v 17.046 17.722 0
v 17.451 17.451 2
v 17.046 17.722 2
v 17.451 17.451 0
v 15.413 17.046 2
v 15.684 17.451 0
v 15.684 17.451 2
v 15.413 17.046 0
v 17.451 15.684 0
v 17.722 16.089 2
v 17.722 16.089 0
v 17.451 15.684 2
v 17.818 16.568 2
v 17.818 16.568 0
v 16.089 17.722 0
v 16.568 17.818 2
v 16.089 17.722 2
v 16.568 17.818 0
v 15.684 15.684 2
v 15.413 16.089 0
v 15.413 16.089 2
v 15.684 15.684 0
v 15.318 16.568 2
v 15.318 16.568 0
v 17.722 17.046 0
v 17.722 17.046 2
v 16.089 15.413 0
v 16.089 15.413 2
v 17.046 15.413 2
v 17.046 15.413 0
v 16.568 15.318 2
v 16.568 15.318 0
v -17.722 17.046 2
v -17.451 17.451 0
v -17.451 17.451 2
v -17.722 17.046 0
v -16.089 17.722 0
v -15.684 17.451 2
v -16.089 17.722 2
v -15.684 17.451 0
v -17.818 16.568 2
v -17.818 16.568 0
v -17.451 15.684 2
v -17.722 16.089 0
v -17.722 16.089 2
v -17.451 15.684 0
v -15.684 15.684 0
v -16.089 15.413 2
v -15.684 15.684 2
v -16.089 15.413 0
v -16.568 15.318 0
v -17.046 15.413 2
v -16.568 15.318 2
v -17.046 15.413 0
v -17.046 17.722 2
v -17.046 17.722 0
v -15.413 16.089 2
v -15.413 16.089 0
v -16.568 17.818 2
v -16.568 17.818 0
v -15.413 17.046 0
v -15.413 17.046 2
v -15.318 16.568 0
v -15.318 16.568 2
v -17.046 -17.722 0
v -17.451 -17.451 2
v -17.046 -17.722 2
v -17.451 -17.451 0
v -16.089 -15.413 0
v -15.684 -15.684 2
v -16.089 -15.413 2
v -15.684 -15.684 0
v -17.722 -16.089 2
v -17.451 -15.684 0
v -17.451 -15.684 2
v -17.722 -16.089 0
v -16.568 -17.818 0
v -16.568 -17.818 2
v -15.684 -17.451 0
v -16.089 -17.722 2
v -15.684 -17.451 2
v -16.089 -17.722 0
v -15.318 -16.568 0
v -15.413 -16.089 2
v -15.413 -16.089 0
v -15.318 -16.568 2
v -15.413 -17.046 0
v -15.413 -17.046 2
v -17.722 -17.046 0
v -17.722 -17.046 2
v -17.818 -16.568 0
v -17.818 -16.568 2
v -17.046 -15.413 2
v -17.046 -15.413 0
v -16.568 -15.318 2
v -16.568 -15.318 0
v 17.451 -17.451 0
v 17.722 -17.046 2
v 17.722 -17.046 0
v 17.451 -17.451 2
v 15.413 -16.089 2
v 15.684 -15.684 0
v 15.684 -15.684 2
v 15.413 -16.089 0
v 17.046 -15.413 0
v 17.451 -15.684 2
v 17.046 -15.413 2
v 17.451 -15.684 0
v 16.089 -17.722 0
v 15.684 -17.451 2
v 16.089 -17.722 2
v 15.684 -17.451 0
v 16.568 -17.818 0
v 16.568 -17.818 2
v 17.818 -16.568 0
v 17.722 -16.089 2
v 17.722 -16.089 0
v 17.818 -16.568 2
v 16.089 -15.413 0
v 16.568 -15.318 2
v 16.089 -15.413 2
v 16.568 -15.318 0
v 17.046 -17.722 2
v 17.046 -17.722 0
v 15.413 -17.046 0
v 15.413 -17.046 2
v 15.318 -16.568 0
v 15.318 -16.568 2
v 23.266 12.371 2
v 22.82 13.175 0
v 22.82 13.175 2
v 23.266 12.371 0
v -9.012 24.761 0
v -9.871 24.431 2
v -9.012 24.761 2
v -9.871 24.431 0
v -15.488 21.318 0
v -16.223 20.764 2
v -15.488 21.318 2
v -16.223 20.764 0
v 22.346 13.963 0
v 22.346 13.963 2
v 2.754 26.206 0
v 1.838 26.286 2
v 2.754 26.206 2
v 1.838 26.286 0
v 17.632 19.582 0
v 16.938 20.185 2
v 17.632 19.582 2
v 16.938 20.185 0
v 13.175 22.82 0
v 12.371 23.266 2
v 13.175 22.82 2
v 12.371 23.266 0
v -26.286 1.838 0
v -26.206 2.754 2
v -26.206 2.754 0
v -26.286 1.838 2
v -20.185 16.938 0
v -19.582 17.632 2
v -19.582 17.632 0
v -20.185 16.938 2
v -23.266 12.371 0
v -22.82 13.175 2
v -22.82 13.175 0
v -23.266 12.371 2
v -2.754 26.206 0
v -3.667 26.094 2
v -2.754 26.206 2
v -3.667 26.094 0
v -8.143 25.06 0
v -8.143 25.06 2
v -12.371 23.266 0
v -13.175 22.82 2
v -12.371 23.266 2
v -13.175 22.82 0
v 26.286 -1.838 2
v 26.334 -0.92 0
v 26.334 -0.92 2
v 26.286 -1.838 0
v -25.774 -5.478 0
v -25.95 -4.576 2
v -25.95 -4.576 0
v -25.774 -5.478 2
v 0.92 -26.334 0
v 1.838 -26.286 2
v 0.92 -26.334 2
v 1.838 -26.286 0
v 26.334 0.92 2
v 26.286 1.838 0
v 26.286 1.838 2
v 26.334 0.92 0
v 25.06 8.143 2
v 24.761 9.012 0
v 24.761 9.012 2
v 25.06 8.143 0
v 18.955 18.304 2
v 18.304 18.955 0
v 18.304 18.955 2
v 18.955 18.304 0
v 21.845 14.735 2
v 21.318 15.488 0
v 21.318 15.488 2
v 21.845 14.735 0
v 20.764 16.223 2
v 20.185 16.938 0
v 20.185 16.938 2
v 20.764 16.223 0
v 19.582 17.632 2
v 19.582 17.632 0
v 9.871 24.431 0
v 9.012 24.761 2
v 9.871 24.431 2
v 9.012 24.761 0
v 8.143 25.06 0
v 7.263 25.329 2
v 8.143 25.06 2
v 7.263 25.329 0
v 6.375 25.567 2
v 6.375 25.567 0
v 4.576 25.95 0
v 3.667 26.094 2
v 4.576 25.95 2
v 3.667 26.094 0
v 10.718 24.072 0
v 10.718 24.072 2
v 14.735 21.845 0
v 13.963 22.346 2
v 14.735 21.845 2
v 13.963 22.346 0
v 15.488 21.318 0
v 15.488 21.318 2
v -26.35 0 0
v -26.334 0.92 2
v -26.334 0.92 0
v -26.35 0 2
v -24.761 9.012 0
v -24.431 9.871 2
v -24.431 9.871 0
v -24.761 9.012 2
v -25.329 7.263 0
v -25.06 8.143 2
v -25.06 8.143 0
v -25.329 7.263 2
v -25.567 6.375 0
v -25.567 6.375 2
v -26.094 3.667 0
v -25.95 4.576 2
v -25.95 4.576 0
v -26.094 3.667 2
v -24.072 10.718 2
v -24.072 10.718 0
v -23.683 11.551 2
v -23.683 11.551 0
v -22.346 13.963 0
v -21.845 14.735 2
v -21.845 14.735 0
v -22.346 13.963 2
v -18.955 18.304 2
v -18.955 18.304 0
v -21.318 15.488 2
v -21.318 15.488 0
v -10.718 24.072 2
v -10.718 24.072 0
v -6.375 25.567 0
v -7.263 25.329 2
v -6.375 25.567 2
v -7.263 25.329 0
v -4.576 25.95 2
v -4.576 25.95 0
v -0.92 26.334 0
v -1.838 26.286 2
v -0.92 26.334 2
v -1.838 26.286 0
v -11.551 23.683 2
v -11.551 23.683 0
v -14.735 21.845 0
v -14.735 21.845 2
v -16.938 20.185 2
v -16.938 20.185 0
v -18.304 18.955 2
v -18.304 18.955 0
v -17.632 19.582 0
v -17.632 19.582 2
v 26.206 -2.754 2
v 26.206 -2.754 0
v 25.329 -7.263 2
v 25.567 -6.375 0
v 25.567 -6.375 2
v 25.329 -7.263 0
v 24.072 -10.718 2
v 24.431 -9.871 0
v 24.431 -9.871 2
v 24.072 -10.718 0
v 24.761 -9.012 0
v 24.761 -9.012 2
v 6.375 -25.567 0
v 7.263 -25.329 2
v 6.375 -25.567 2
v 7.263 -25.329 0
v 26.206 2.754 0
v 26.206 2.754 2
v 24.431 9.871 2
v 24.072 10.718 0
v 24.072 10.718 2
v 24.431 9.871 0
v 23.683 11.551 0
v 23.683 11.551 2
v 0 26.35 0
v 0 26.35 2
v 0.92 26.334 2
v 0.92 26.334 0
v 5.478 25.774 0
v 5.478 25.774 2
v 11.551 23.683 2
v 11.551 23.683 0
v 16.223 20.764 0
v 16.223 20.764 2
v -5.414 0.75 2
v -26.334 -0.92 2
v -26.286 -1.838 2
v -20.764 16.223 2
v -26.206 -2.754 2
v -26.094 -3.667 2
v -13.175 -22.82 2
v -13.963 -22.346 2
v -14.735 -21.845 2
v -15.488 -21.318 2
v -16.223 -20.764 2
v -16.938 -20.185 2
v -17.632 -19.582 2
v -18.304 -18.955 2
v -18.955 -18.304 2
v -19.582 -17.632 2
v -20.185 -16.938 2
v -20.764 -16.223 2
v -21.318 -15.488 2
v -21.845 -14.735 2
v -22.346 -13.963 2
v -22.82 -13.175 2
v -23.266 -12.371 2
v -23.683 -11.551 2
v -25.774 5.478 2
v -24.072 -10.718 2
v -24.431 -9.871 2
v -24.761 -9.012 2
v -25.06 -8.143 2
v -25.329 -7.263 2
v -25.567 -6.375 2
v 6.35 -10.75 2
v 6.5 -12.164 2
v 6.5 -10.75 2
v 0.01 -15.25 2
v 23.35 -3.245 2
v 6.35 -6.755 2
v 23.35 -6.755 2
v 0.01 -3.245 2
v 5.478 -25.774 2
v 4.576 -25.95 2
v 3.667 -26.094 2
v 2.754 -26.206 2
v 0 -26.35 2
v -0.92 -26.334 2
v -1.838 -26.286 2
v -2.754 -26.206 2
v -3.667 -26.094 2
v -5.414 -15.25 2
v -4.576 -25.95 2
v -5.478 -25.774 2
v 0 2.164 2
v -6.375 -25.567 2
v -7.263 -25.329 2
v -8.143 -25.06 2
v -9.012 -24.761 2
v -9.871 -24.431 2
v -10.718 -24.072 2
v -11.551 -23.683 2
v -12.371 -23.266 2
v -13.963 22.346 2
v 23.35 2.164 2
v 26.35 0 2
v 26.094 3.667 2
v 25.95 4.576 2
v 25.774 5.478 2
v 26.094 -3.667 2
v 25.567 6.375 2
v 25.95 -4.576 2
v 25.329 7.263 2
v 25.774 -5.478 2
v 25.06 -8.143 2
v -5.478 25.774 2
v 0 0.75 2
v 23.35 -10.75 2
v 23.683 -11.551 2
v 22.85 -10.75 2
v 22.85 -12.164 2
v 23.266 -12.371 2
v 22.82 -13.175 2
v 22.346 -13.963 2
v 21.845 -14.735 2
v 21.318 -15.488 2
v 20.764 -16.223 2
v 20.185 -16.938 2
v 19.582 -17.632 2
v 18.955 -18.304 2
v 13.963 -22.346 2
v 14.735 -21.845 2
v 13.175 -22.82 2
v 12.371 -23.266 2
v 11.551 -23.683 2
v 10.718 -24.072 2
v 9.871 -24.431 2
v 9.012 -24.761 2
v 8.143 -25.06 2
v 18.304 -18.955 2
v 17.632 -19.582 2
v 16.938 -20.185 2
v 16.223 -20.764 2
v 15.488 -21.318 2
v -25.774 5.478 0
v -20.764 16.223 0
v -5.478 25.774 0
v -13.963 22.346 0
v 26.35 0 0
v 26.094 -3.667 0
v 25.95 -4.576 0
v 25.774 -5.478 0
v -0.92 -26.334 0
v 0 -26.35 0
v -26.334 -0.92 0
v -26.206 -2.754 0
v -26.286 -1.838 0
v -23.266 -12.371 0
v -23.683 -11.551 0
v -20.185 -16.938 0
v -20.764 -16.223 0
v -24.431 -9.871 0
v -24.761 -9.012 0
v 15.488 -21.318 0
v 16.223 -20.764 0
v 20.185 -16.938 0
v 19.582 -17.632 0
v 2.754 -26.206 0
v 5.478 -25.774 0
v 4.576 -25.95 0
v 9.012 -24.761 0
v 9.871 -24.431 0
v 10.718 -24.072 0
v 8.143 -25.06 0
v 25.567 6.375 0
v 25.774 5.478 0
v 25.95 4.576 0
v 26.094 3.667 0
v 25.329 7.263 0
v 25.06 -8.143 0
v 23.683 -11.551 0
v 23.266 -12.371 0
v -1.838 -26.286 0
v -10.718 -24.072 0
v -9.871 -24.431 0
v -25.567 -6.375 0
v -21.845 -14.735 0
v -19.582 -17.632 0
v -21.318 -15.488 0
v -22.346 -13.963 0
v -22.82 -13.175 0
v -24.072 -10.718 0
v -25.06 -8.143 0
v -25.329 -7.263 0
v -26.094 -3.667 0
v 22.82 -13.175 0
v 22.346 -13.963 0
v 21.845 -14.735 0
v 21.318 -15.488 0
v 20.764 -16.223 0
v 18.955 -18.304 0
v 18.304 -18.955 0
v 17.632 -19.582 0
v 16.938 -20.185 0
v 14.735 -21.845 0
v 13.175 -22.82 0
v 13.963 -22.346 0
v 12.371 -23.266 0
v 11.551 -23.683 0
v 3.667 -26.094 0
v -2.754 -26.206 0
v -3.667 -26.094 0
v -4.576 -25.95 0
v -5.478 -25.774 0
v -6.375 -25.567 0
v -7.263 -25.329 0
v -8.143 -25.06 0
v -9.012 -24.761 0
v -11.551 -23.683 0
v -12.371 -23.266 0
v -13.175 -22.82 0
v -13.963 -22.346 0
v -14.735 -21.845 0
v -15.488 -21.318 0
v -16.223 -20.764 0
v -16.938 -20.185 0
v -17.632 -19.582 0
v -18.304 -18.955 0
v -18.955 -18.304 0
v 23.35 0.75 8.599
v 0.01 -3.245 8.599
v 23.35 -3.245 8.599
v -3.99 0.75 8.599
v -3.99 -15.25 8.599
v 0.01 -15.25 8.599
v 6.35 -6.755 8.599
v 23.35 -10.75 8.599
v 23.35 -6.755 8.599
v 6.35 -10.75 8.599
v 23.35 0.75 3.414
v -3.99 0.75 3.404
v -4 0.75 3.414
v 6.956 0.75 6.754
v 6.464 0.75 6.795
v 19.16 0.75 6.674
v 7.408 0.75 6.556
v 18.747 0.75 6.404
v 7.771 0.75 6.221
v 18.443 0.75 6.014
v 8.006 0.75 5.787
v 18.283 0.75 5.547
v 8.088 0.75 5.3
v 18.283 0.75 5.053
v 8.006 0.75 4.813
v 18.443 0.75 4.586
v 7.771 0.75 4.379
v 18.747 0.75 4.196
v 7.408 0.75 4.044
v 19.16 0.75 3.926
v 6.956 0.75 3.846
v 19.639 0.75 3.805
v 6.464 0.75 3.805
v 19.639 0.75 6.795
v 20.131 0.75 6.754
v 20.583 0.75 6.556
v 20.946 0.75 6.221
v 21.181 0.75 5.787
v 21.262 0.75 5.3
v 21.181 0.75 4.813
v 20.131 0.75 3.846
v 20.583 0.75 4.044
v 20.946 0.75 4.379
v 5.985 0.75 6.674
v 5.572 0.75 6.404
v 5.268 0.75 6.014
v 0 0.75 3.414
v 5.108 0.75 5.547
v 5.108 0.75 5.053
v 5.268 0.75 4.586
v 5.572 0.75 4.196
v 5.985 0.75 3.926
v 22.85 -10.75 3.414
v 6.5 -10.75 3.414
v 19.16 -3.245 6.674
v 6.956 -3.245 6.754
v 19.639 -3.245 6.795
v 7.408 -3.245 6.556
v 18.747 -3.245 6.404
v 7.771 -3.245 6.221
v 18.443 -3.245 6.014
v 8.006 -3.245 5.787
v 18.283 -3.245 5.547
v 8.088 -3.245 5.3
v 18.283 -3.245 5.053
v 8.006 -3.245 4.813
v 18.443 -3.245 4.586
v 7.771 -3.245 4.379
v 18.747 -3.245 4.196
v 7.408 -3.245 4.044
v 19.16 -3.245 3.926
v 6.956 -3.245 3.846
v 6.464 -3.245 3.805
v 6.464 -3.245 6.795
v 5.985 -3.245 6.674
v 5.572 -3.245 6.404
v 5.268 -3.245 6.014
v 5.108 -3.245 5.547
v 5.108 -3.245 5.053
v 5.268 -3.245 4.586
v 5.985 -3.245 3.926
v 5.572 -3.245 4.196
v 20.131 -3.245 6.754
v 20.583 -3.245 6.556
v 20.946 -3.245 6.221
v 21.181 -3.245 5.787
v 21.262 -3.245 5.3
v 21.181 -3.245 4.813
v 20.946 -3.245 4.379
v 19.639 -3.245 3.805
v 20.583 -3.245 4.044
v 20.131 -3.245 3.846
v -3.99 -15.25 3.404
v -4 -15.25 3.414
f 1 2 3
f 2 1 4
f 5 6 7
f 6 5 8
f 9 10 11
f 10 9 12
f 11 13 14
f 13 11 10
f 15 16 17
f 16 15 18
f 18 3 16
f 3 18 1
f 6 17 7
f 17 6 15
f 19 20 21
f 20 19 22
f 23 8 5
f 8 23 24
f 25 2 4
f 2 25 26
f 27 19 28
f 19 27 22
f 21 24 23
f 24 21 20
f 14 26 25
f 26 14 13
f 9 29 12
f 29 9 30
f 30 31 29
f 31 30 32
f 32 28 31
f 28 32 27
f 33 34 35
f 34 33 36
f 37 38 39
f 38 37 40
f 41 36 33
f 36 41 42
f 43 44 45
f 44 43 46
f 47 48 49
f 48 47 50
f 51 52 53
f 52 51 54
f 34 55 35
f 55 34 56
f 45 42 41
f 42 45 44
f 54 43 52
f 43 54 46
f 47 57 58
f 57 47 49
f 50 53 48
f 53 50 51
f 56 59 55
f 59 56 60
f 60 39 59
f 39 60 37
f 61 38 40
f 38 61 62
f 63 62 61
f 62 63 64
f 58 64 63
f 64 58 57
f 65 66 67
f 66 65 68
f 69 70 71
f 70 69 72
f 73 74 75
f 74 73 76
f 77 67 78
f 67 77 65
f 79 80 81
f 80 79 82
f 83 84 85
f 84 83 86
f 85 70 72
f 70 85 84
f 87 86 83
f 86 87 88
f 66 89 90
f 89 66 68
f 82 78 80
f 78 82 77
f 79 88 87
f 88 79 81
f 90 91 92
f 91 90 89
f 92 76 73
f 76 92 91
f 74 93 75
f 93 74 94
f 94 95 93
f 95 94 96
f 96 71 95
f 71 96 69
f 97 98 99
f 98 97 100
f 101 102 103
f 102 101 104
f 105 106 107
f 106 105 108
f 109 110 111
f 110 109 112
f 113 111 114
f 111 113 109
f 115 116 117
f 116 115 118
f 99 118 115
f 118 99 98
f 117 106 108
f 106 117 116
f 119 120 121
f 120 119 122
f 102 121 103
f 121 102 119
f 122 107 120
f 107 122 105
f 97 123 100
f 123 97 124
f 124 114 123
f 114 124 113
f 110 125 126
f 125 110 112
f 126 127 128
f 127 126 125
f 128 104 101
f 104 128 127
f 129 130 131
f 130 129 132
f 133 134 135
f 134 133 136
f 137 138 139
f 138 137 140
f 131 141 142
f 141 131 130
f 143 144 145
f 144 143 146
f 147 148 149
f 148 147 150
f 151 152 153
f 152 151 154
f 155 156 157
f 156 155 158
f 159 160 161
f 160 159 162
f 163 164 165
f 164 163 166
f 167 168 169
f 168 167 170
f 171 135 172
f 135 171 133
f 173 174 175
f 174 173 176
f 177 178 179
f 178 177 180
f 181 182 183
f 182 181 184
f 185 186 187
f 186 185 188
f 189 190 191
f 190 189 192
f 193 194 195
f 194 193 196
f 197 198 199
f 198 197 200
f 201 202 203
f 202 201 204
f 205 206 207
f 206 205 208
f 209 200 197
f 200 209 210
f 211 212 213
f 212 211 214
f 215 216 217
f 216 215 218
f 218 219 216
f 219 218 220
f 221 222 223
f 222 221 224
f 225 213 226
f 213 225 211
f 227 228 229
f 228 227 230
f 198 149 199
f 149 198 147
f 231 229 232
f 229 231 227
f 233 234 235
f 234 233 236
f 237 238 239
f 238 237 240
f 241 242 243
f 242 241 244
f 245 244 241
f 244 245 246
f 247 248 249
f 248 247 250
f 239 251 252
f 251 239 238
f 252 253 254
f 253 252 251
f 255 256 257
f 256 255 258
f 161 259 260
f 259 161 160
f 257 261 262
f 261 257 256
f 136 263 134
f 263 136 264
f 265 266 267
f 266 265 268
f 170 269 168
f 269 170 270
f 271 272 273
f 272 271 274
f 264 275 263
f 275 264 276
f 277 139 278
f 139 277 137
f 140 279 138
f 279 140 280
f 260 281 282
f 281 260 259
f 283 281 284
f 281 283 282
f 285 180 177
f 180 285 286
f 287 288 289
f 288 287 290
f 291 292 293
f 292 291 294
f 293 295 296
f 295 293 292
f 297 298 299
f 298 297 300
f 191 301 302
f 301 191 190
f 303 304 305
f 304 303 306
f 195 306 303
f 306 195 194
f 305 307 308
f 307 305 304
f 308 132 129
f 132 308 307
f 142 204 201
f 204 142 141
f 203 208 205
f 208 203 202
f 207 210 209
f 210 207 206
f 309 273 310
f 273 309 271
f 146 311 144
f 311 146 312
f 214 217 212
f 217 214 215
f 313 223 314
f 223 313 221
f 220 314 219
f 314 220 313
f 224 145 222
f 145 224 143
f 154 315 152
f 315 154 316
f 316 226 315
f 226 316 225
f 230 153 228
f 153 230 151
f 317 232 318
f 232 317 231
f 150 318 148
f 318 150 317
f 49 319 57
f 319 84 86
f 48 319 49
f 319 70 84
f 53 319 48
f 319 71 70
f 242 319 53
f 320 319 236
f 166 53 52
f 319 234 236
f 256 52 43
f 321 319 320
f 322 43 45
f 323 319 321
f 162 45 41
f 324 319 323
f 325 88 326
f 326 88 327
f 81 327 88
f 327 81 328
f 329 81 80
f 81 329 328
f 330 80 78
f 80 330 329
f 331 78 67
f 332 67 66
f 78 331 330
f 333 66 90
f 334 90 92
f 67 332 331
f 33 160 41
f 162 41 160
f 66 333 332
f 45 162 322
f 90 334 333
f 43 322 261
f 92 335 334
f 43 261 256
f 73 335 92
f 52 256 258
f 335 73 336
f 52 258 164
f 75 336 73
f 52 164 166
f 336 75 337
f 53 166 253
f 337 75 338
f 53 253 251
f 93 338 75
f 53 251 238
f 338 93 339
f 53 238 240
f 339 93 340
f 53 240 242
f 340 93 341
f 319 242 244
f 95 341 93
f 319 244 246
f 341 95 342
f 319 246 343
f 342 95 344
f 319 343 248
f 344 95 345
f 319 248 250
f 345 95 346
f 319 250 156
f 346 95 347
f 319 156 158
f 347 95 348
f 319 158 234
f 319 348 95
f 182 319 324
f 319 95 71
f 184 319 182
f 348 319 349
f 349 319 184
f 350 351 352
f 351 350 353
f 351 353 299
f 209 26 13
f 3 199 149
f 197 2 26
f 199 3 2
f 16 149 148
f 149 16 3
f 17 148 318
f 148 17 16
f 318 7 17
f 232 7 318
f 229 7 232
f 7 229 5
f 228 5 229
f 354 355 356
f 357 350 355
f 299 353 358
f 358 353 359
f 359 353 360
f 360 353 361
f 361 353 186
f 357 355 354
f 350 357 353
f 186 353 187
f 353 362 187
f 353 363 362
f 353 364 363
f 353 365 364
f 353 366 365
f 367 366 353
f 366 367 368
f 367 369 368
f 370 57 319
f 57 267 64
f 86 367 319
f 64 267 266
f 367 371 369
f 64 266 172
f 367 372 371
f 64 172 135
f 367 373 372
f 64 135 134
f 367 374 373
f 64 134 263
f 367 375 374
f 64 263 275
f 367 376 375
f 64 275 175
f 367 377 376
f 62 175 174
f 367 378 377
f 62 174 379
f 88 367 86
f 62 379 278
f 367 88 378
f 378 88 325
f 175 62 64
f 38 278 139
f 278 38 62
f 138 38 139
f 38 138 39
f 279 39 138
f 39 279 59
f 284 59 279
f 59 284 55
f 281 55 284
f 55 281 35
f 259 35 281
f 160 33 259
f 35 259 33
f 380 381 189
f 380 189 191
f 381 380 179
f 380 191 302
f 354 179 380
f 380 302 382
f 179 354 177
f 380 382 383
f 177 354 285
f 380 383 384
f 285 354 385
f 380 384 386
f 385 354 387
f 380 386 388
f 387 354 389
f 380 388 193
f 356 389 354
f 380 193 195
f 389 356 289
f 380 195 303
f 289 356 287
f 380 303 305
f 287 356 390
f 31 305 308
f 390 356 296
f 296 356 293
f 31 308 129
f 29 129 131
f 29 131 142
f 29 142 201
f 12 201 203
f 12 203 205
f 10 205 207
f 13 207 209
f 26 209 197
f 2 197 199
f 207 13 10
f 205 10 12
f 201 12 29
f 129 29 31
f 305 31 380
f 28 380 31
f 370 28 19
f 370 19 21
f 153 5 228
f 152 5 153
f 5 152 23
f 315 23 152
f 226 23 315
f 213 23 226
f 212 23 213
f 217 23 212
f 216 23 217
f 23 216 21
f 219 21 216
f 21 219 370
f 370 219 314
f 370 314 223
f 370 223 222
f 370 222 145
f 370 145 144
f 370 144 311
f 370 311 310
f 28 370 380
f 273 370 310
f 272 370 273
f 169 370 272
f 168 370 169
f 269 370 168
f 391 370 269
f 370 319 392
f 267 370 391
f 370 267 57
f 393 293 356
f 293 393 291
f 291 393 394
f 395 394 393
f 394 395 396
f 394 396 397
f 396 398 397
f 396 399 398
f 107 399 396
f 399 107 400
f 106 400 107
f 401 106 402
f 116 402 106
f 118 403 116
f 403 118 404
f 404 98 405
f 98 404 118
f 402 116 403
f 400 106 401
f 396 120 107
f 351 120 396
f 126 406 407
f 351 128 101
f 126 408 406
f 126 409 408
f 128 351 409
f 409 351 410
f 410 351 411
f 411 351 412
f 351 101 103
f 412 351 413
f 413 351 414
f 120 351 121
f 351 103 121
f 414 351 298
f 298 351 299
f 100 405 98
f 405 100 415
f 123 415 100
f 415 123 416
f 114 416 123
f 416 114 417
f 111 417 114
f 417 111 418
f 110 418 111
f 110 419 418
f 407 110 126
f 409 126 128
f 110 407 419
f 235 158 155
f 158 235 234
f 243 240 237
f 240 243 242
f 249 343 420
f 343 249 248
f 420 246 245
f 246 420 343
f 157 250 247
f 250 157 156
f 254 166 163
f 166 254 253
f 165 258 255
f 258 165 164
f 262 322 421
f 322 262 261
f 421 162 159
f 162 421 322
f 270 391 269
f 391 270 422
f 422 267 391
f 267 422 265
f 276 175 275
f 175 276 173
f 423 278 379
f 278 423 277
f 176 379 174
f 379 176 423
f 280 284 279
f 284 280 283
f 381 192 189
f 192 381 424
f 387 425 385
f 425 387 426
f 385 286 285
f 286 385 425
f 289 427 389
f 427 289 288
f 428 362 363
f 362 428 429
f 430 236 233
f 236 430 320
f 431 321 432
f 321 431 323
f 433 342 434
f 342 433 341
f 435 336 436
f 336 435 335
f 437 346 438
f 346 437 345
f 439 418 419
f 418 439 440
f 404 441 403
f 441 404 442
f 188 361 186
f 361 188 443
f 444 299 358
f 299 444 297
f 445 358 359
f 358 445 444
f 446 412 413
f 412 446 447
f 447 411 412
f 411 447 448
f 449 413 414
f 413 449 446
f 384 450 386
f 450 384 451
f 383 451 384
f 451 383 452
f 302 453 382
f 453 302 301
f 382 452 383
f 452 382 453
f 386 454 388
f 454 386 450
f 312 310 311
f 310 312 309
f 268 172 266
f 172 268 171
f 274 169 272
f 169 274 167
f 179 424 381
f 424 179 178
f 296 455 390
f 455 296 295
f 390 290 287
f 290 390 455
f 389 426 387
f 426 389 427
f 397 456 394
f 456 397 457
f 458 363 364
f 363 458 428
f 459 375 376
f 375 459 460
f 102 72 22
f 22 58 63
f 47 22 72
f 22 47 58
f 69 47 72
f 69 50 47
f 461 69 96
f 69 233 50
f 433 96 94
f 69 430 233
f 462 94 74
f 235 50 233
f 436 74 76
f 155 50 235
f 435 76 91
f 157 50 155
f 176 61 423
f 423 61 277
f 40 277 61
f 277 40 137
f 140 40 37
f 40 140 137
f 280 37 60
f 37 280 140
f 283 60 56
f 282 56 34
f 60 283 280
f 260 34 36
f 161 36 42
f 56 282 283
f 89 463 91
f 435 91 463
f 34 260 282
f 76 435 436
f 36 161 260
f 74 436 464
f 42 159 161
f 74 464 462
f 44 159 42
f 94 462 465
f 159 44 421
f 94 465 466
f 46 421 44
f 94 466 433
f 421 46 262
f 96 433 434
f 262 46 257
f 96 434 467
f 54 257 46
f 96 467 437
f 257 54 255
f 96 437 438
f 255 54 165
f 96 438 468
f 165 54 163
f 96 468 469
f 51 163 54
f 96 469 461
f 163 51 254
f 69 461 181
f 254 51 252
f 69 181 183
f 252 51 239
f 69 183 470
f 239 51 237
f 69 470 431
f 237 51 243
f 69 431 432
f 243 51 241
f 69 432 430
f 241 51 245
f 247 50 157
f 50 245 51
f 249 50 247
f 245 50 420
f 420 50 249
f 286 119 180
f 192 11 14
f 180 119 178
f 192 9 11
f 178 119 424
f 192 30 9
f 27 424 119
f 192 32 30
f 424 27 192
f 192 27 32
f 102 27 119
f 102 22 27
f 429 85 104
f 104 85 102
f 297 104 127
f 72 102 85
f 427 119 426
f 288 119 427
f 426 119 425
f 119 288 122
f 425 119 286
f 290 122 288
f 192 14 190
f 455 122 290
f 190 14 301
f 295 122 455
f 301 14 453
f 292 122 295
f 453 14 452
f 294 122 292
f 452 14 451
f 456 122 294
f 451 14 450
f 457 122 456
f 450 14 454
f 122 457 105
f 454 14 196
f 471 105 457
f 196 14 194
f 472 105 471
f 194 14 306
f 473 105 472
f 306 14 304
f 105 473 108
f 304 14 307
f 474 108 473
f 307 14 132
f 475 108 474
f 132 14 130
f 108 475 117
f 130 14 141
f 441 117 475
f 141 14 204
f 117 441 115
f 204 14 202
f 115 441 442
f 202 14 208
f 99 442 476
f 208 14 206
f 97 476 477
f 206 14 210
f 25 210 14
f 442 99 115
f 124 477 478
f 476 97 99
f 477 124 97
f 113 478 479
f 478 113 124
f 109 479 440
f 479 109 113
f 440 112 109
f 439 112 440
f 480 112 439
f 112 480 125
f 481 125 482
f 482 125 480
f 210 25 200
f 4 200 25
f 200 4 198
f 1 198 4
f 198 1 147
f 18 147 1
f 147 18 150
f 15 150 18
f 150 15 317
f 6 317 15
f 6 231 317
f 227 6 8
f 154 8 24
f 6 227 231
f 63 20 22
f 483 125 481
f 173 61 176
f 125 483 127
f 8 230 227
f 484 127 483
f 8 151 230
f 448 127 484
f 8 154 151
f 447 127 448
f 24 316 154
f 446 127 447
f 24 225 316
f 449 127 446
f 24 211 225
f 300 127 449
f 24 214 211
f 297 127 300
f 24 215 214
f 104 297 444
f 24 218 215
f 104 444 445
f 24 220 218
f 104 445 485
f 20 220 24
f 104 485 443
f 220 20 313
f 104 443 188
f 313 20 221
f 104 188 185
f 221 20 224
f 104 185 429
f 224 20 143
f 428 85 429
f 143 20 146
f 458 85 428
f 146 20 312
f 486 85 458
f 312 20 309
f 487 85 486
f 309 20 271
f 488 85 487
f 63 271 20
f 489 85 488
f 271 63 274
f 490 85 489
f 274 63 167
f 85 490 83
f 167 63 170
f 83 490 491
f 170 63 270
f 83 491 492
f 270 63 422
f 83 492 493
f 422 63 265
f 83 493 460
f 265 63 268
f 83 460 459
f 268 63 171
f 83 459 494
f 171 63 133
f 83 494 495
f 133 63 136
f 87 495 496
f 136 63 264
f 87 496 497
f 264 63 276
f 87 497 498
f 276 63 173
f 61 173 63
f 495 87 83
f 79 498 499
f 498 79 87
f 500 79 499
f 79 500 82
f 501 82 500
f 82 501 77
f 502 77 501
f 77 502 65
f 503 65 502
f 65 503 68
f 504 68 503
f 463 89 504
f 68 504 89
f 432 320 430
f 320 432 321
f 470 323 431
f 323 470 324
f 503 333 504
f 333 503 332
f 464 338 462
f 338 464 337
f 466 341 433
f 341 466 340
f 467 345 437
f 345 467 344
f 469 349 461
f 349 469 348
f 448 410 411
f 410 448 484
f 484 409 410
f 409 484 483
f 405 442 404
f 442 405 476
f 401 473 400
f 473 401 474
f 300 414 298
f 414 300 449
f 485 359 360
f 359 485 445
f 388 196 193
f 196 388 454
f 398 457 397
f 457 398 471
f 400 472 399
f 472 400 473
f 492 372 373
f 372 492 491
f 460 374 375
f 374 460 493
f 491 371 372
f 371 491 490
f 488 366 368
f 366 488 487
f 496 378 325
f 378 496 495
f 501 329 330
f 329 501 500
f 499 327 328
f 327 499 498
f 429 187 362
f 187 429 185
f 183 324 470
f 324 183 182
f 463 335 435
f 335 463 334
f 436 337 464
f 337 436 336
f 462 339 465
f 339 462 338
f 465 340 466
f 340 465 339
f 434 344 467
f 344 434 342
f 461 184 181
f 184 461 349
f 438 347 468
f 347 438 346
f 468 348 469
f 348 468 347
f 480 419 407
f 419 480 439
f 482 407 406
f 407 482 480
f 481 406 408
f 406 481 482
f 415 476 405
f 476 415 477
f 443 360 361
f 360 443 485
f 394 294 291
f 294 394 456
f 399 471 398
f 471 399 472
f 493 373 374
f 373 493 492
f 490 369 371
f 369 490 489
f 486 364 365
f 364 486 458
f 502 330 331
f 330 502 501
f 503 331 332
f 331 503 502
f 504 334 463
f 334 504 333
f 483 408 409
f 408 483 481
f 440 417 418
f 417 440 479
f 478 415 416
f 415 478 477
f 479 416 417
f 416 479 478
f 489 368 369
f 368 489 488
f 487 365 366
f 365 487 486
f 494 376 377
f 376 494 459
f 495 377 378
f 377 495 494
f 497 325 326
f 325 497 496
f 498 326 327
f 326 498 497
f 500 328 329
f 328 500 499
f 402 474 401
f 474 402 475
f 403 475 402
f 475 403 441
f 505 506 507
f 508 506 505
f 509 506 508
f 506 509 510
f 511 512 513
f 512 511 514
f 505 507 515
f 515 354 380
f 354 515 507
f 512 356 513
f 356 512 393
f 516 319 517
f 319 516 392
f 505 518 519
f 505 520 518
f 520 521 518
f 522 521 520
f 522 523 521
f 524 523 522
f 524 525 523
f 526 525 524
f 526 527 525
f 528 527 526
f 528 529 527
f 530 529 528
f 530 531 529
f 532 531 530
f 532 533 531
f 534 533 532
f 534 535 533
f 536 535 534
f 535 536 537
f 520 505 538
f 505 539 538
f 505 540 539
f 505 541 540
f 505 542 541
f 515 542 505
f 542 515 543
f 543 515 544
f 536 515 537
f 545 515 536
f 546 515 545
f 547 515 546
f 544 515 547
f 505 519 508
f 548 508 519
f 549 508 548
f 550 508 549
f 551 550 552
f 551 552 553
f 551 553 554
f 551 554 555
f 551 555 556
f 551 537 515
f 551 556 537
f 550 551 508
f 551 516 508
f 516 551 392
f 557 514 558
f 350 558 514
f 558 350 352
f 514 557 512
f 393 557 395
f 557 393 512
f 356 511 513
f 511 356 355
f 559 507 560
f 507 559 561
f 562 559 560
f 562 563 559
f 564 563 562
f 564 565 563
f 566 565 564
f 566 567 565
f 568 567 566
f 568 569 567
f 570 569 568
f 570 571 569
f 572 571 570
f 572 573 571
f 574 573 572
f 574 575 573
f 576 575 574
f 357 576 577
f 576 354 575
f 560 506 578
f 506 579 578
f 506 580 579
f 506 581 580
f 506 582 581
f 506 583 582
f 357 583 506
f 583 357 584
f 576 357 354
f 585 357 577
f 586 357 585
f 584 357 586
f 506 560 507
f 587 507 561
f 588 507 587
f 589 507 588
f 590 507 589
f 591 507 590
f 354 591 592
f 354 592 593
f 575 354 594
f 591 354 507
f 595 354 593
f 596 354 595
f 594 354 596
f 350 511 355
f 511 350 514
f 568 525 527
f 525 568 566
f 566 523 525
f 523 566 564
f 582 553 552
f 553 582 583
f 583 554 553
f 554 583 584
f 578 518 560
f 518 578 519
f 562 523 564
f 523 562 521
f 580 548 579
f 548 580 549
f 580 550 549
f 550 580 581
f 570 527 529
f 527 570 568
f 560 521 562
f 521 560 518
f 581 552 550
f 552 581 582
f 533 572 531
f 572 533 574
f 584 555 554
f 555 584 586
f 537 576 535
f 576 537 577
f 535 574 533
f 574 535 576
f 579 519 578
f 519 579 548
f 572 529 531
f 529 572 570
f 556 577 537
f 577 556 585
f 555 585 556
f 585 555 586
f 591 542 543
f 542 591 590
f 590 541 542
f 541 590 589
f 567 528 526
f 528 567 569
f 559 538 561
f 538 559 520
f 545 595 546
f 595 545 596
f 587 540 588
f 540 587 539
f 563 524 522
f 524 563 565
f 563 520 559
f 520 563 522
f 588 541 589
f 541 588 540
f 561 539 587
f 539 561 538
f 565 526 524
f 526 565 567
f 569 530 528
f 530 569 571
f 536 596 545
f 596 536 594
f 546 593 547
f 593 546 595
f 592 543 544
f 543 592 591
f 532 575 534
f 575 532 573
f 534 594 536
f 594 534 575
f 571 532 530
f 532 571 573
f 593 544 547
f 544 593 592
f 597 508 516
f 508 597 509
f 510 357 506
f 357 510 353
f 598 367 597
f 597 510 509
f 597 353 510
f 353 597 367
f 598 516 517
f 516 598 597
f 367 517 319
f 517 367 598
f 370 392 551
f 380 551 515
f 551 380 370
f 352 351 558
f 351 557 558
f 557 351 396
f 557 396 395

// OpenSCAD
back_d=52.7;
metal_thick=3.5;
$fs=.5;
$fa=2;
lip=6.6;
back_t=2;
thick=4;
mount_d=46.86;
mount_s=2.5;
difference()
{
    cylinder(r1=back_d/2, r2=back_d/2, h=back_t);
    for (ii=[0:4])
    {
        rotate(ii*90+45,[0,0,1])translate([mount_d/2,0,-back_t+back_t/2])cylinder(r1=mount_s/2,r2=mount_s/2,h=back_t*2);
    }
}

translate([0,-5,0])
{
    difference()
    {
        translate([back_d/4-1.5,0,lip/2+back_t-0.001])cube([back_d/2-3,thick+thick+metal_thick,lip],center=true);
        translate([back_d/4-.01,0,lip/2+back_t-0.001])cube([back_d/2,metal_thick+0.01,lip+1],center=true);
        xpos=back_d/2-15-20;
        translate([xpos,-thick,lip/2+back_t-0.001])cube([30,thick+1,lip+1],center=true);
        //setscrew hole
        translate([back_d/8,thick+metal_thick,back_t+lip/2])rotate(90,[1,0,0])cylinder(r1=3/2,r2=3/2,h=thick*2);
        translate([3*back_d/8,thick+metal_thick,back_t+lip/2])rotate(90,[1,0,0])cylinder(r1=3/2,r2=3/2,h=thick*2);
    }
    translate([-thick/2+.01,-thick*2+metal_thick/2+thick,lip/2+back_t-0.001])cube([thick,thick*4,lip],center=true);
    translate([-thick,-thick*2+metal_thick/2+thick,back_t])rotate(45,[0,1,0])cube([thick/2,thick*4,thick/2],center=true);
    translate([back_d/4-1.5,5.75,back_t])rotate(45,[1,0,0])cube([back_d/2-3,thick/2,thick/2],center=true);
    translate([back_d/4+1.5,-5.75,back_t])rotate(45,[1,0,0])cube([back_d/2-10,thick/2,thick/2],center=true);
}
